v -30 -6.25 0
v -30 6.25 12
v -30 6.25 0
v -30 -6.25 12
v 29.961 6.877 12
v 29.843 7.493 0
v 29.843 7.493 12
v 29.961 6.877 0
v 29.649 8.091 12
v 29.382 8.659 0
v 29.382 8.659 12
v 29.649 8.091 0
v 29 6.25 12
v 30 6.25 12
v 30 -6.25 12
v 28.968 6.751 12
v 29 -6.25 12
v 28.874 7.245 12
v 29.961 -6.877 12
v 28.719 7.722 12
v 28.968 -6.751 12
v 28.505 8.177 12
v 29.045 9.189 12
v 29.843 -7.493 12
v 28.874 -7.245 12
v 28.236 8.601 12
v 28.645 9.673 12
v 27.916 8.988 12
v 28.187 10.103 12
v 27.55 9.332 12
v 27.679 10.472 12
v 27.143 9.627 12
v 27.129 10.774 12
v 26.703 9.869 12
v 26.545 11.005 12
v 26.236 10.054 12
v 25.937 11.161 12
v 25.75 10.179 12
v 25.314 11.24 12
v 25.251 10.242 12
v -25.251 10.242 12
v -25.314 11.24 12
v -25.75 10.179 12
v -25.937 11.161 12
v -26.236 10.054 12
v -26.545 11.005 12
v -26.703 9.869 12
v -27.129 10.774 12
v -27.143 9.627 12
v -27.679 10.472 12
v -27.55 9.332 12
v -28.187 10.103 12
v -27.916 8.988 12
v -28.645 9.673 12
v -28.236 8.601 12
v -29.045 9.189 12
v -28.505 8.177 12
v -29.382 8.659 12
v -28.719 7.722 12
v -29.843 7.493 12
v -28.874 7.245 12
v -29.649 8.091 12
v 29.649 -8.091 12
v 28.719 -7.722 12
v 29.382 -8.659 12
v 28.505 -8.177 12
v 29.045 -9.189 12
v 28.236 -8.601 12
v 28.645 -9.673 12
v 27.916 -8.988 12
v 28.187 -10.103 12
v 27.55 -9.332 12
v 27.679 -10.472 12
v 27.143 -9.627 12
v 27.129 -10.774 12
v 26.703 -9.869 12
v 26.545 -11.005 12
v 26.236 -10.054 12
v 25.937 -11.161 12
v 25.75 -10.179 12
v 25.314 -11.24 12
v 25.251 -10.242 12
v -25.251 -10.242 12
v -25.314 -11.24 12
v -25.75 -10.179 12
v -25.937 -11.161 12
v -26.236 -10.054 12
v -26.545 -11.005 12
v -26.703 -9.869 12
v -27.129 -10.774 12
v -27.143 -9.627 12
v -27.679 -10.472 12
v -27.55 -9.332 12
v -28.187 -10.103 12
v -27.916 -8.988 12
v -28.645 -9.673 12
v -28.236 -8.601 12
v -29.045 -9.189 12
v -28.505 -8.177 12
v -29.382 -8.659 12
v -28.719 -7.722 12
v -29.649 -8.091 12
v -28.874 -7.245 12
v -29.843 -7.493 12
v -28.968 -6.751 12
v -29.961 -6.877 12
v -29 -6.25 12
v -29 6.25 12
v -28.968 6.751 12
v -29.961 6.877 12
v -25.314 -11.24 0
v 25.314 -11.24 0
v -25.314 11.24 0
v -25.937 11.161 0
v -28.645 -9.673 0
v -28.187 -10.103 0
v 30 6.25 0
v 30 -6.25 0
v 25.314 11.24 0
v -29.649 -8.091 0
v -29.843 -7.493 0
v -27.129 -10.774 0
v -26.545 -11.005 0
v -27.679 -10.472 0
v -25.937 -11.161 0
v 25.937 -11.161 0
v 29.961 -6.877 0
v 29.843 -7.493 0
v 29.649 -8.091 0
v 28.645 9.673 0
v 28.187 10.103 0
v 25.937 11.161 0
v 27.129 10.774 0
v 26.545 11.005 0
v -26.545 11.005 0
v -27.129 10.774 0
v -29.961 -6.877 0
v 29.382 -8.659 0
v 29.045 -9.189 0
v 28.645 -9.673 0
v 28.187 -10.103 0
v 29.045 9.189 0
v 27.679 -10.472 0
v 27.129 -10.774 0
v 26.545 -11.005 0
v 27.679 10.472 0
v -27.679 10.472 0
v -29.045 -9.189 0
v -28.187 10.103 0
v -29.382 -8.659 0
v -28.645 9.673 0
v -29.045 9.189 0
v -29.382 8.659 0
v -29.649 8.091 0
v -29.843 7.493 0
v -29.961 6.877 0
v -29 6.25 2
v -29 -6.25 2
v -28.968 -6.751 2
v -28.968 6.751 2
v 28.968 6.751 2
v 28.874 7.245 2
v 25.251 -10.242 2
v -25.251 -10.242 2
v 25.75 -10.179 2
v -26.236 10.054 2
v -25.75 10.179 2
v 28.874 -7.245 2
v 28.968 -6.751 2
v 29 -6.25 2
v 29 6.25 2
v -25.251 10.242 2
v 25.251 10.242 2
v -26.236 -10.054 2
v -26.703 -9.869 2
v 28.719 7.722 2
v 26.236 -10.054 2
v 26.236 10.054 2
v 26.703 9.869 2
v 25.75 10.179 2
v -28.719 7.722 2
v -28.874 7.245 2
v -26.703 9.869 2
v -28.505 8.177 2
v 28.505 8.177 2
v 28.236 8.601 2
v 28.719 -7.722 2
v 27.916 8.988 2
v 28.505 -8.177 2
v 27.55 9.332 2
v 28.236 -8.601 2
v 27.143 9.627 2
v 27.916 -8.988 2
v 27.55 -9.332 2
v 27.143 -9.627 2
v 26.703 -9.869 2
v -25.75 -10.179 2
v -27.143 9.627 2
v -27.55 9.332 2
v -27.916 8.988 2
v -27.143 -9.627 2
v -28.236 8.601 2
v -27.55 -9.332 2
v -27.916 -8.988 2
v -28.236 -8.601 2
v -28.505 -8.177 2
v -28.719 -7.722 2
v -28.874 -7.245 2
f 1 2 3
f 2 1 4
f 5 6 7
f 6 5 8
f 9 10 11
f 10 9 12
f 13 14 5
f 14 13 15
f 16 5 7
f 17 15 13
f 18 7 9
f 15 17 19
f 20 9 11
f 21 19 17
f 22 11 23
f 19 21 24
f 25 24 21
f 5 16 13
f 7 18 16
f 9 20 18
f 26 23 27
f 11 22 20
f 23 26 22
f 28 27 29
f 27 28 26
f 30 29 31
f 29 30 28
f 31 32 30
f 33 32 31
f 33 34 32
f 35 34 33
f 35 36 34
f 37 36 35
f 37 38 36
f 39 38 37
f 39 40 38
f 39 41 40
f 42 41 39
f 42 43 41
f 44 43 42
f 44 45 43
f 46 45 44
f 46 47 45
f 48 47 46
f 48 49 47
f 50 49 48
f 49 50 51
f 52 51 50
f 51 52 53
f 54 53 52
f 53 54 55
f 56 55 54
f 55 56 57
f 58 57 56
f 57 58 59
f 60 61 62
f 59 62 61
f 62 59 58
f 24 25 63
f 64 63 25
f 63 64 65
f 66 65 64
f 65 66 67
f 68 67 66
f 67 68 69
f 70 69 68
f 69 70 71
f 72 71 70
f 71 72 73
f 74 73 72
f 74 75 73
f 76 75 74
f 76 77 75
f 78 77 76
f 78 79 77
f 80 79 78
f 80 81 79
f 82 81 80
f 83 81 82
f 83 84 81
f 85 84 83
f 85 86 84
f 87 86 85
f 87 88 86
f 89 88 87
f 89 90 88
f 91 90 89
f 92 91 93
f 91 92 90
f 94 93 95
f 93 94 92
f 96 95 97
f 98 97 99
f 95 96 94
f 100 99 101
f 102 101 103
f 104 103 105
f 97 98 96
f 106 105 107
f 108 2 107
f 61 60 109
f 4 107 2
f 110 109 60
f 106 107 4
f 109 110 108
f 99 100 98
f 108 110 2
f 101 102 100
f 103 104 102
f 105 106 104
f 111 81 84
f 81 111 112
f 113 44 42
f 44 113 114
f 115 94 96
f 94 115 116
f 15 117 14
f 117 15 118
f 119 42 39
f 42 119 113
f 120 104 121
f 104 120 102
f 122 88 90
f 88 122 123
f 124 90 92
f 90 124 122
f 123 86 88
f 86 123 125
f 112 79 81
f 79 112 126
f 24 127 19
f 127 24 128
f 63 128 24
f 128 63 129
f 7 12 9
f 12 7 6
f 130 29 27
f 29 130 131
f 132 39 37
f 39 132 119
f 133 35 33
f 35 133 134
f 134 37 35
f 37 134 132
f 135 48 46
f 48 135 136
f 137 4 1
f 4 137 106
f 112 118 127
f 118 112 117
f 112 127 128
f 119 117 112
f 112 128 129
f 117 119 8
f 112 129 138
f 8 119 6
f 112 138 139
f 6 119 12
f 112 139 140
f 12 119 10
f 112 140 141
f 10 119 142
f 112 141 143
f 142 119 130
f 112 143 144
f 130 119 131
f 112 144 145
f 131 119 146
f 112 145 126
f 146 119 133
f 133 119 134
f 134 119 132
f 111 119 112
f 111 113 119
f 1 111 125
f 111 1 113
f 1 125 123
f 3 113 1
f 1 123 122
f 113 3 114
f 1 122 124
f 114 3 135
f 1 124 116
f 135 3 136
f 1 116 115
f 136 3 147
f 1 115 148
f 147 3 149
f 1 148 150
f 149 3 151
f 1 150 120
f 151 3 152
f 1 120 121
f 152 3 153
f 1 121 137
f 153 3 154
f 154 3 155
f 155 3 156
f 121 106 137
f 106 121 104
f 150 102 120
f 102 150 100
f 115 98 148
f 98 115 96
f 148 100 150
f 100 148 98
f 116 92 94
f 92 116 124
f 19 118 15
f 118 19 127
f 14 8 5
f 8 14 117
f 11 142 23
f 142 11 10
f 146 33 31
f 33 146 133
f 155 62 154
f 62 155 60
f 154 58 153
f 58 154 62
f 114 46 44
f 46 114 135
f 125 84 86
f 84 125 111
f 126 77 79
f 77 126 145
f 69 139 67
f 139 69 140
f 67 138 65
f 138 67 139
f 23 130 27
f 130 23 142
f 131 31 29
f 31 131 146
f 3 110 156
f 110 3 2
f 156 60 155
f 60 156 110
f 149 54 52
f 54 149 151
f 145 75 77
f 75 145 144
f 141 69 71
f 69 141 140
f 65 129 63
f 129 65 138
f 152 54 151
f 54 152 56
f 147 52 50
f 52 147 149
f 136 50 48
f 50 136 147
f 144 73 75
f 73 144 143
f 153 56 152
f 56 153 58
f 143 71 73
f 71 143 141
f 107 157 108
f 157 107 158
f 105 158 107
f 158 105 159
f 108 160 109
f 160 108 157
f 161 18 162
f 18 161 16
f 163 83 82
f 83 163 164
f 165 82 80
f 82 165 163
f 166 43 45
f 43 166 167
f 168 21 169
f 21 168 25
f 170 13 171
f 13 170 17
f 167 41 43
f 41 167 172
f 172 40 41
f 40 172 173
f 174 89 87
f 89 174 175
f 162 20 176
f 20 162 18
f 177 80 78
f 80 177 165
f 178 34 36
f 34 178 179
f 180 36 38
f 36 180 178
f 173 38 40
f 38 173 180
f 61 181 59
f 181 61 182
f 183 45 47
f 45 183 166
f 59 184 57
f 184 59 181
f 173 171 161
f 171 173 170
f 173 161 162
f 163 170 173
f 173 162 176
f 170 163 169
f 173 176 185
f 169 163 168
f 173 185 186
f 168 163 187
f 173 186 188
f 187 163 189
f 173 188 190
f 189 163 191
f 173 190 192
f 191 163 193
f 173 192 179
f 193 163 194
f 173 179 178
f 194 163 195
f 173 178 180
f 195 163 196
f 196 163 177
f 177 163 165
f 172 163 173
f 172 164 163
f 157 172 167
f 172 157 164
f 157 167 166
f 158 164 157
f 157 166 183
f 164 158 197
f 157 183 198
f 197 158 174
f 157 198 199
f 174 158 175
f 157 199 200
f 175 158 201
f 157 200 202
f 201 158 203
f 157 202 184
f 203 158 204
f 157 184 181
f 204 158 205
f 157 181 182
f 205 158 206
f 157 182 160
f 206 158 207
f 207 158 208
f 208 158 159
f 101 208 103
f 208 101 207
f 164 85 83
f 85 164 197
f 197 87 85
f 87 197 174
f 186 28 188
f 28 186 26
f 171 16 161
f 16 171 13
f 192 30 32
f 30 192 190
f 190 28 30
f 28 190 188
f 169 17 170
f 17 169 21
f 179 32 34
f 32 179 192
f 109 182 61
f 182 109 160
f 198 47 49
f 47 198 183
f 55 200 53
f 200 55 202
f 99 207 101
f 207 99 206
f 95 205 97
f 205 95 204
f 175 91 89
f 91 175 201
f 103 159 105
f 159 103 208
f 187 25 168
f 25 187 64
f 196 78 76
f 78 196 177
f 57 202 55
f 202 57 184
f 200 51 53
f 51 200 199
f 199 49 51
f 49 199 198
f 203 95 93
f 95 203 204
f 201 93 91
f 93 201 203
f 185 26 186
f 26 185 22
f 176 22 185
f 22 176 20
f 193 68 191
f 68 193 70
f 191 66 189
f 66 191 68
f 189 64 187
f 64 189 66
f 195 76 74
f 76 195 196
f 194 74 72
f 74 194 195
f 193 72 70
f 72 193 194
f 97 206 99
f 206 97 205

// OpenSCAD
$fn = 50;


difference() {
	union() {
		hull() {
			translate(v = [-25.0000000000, 6.2500000000, 0]) {
				cylinder(h = 12, r = 5);
			}
			translate(v = [25.0000000000, 6.2500000000, 0]) {
				cylinder(h = 12, r = 5);
			}
			translate(v = [-25.0000000000, -6.2500000000, 0]) {
				cylinder(h = 12, r = 5);
			}
			translate(v = [25.0000000000, -6.2500000000, 0]) {
				cylinder(h = 12, r = 5);
			}
		}
	}
	union() {
		translate(v = [0, 0, 2]) {
			hull() {
				translate(v = [-25.0000000000, 6.2500000000, 0]) {
					cylinder(h = 10, r = 4);
				}
				translate(v = [25.0000000000, 6.2500000000, 0]) {
					cylinder(h = 10, r = 4);
				}
				translate(v = [-25.0000000000, -6.2500000000, 0]) {
					cylinder(h = 10, r = 4);
				}
				translate(v = [25.0000000000, -6.2500000000, 0]) {
					cylinder(h = 10, r = 4);
				}
			}
		}
	}
}
